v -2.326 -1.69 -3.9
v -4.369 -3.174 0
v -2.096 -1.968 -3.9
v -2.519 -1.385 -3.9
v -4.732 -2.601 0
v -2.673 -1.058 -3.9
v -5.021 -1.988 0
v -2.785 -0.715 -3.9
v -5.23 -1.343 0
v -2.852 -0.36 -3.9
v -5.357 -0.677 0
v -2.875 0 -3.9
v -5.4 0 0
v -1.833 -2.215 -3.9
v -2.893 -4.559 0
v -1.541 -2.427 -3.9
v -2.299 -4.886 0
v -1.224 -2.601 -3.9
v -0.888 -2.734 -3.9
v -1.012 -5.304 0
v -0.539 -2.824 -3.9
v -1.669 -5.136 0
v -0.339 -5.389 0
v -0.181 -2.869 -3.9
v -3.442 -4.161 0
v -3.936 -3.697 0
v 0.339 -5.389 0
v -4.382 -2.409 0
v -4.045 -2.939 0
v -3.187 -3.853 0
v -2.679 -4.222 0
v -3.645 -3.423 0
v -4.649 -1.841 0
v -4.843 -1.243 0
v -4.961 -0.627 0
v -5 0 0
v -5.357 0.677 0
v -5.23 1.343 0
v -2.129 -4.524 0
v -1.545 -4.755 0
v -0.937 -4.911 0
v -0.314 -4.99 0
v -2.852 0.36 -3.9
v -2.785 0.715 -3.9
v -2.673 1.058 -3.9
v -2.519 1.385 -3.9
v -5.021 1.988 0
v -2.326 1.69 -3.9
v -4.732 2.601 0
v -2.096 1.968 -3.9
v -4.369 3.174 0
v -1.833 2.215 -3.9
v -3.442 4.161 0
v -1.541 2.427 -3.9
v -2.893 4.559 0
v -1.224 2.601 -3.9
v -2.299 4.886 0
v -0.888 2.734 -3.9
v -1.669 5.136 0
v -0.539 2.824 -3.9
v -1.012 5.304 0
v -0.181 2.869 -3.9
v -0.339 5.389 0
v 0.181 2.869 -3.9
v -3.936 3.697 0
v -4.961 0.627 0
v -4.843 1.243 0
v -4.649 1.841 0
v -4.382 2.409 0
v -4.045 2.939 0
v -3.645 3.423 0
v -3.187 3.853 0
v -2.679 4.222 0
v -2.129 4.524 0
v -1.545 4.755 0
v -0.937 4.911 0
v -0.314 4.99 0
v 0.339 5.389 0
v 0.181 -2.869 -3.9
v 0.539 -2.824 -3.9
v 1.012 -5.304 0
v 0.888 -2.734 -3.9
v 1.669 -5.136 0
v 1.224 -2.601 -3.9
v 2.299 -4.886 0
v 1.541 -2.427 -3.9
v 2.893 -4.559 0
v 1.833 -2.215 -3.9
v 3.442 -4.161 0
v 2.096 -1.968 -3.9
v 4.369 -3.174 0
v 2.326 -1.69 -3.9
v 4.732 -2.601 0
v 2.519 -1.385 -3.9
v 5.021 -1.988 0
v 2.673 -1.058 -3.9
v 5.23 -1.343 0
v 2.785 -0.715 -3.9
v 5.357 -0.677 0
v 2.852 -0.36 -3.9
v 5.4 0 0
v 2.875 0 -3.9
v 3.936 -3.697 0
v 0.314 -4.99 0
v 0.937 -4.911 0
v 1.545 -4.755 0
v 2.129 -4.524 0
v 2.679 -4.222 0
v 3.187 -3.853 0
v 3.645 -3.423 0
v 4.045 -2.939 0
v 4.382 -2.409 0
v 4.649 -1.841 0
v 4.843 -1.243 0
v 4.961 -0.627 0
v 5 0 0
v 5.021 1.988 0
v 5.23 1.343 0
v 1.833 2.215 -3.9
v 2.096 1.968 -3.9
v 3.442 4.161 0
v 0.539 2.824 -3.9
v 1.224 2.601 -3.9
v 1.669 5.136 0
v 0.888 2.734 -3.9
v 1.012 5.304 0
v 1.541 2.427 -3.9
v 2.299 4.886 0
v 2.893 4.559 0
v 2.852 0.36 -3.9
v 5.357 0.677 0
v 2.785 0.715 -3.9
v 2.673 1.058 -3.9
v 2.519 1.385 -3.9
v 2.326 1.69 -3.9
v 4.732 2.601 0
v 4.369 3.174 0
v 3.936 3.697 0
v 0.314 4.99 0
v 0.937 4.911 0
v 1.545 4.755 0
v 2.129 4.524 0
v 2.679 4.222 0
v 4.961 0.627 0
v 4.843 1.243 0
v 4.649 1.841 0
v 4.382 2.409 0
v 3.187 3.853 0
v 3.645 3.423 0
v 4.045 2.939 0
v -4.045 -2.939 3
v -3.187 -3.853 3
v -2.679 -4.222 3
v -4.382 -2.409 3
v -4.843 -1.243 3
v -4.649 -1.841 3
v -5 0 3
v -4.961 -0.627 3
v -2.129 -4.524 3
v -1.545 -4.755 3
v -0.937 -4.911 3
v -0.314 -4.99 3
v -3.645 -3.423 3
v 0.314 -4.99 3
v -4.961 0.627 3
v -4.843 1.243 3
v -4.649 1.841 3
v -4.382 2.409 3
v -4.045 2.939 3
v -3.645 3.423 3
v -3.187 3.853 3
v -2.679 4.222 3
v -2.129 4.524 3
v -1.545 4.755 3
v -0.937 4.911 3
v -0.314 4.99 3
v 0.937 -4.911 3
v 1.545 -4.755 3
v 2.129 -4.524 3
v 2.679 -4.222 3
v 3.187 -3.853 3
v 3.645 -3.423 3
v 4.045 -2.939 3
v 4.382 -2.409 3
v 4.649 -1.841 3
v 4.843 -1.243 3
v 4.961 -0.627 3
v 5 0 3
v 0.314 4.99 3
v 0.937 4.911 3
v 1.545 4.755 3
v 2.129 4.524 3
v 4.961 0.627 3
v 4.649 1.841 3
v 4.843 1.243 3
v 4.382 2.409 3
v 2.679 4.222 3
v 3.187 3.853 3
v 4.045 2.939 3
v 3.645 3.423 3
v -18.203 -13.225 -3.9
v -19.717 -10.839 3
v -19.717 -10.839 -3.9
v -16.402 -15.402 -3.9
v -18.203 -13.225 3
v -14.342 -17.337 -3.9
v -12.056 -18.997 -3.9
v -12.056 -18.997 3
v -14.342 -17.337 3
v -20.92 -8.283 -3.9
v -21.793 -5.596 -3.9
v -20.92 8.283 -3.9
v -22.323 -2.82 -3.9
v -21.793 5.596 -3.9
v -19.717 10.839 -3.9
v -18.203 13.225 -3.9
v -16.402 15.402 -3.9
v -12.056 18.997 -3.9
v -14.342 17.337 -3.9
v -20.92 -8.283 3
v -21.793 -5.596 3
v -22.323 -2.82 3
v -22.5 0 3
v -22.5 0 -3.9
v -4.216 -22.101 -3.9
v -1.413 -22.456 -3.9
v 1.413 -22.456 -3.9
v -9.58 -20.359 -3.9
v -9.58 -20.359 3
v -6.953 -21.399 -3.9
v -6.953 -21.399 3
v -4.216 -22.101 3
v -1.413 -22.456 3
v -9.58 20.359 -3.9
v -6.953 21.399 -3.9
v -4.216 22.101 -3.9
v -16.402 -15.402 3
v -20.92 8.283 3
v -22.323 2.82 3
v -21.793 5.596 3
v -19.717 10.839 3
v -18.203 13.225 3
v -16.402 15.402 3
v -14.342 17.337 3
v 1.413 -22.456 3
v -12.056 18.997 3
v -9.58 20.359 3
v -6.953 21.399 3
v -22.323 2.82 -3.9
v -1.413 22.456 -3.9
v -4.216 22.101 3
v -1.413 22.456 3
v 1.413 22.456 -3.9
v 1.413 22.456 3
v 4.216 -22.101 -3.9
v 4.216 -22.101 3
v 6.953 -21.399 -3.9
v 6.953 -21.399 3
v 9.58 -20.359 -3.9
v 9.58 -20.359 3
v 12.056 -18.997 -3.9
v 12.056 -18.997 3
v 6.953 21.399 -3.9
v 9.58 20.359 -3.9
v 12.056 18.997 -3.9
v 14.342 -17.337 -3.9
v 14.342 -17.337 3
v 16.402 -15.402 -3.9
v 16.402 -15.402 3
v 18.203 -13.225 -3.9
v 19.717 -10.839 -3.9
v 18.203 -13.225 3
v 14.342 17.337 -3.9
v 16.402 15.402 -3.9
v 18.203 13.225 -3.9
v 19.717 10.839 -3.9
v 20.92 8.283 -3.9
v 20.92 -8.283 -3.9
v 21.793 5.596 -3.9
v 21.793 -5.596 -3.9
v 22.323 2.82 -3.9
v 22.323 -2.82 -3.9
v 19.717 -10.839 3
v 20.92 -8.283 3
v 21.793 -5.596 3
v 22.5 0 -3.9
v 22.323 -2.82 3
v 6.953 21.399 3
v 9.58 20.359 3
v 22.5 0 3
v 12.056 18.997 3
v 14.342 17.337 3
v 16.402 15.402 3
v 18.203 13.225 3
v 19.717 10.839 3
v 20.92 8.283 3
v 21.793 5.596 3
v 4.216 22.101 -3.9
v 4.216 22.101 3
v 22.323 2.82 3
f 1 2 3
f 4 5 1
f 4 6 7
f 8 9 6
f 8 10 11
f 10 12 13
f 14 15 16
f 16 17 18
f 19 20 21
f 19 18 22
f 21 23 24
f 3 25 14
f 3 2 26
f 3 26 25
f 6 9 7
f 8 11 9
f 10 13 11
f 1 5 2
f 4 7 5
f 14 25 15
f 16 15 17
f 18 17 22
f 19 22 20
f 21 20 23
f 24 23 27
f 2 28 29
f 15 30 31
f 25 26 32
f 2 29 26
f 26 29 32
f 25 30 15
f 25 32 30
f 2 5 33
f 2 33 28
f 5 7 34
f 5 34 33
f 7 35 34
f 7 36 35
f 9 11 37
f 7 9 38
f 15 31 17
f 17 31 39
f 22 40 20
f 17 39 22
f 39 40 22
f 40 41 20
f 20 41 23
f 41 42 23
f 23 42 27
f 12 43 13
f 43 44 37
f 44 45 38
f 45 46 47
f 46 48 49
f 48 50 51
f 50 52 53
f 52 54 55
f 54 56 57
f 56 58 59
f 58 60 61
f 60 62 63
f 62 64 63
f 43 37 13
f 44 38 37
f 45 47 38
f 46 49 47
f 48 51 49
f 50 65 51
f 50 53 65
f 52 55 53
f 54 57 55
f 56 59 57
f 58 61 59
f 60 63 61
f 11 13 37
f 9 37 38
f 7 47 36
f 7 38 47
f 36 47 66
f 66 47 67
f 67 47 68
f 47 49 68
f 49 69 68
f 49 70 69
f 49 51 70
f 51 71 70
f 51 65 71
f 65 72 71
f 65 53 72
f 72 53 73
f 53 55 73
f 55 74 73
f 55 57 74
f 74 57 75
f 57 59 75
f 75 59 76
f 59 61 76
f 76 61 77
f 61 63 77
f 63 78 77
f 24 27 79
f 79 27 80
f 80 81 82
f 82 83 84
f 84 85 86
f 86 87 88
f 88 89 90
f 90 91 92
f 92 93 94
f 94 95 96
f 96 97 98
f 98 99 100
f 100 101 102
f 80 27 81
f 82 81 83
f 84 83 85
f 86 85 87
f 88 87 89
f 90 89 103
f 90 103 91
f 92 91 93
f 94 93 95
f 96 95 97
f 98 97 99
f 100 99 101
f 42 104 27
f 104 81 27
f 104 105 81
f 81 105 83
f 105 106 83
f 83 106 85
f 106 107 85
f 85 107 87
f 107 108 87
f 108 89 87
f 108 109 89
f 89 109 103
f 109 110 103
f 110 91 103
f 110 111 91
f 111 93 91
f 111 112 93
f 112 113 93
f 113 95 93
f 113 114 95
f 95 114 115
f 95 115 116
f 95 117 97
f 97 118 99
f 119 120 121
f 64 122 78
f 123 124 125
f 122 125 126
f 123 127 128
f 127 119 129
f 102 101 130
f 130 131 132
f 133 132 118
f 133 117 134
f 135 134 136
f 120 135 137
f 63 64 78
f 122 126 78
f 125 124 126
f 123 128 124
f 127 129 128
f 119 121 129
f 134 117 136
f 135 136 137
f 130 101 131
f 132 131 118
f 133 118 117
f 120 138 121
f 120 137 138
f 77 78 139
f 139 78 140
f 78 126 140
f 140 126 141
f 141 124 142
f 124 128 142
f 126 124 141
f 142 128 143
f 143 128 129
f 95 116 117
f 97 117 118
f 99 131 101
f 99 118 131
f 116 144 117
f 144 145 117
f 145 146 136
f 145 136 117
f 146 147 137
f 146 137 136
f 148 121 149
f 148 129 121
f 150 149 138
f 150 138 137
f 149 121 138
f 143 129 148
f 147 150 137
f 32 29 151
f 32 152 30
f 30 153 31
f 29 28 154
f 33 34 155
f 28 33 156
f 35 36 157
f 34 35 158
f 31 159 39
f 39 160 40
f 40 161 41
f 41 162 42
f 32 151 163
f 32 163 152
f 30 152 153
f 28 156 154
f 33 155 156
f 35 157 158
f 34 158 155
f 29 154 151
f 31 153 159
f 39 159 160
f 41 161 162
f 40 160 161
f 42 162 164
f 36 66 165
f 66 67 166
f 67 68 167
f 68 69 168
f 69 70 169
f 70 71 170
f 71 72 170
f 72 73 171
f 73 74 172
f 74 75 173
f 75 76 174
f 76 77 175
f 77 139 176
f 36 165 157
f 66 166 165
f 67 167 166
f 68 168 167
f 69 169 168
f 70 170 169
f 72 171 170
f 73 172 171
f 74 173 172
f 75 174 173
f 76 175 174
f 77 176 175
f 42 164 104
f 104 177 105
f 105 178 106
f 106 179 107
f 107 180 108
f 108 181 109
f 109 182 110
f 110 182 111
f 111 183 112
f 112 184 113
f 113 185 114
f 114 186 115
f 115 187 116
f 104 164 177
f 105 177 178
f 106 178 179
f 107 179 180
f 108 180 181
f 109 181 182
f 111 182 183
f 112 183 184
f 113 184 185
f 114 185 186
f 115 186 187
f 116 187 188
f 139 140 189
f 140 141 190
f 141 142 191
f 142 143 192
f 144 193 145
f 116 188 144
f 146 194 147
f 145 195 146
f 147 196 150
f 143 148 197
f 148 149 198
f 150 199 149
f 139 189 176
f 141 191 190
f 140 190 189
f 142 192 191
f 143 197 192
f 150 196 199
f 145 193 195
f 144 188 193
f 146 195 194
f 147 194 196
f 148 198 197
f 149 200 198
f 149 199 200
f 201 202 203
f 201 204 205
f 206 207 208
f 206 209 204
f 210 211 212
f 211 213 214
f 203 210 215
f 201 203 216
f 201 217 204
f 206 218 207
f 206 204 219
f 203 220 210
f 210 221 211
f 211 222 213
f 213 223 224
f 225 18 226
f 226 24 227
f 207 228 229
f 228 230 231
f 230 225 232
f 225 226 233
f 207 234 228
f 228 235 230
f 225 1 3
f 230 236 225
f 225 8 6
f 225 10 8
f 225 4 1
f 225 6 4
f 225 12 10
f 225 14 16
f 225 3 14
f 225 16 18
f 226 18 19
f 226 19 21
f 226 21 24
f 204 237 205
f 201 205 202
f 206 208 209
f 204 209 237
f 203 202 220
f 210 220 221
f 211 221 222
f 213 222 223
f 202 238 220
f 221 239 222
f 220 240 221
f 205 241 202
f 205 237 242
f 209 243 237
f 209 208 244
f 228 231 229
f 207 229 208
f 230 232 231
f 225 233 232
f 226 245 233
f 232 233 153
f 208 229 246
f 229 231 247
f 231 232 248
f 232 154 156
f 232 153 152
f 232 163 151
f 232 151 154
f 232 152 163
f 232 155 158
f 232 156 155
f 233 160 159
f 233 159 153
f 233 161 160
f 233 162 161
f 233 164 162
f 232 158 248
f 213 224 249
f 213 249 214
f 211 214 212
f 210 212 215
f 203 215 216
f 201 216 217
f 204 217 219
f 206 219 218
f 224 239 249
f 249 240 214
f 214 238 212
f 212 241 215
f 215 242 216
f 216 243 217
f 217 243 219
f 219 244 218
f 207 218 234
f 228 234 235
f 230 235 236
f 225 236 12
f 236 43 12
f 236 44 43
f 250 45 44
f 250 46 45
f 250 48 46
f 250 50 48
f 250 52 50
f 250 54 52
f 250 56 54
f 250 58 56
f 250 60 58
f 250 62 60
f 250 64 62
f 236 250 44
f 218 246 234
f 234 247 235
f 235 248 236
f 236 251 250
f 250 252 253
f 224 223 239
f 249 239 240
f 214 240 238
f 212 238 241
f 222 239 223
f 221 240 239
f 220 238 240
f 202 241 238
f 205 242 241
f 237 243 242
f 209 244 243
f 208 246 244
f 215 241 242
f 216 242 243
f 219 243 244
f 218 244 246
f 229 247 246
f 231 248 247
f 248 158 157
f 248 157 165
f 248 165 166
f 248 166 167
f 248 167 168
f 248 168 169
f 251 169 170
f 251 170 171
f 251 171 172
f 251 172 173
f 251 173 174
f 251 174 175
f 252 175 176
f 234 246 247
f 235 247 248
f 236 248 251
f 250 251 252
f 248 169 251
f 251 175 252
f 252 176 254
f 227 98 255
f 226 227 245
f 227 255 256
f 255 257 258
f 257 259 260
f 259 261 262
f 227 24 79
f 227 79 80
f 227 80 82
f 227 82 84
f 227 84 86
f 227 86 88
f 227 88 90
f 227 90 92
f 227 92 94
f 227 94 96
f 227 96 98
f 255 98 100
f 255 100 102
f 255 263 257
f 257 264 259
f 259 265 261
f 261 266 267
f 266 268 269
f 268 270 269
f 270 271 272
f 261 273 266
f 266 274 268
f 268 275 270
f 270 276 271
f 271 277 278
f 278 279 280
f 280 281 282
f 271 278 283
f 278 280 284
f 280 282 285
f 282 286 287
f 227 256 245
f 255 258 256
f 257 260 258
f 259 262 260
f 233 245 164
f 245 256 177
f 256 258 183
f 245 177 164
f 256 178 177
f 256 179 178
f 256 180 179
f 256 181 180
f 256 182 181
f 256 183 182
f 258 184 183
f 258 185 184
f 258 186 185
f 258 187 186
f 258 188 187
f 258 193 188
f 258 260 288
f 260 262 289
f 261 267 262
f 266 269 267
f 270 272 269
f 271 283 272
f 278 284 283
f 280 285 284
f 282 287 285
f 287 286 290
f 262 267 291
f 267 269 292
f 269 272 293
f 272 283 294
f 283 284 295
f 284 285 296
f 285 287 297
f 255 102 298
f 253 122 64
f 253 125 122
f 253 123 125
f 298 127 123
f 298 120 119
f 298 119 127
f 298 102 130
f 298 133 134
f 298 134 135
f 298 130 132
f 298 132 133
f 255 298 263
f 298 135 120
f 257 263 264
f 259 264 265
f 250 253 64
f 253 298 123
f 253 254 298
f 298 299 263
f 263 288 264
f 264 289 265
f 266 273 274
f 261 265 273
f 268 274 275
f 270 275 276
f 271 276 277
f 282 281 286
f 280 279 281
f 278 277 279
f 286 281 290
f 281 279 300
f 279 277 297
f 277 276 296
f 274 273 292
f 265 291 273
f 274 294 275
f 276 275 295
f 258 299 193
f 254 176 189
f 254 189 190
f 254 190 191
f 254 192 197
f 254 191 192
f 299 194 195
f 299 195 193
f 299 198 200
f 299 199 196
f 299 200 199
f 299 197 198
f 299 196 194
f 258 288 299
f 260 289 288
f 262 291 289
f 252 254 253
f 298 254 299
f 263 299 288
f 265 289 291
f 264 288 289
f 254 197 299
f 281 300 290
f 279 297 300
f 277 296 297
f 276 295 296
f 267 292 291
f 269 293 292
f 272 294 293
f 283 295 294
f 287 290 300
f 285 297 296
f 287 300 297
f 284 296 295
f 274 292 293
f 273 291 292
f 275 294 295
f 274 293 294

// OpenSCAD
$fn = 50;


difference() {
	union() {
		translate(v = [0, 0, -3.9000000000]) {
			cylinder(h = 6.9000000000, r = 22.5000000000);
		}
	}
	union() {
		translate(v = [0, 0, 0]) {
			rotate(a = [0, 0, 0]) {
				difference() {
					union() {
						translate(v = [0, 0, -6.9000000000]) {
							cylinder(h = 6.9000000000, r = 2.6000000000);
						}
						translate(v = [0, 0, -3.9000000000]) {
							cylinder(h = 3.9000000000, r1 = 2.8750000000, r2 = 5.4000000000);
						}
						translate(v = [0, 0, -6.9000000000]) {
							cylinder(h = 6.9000000000, r = 2.8750000000);
						}
						translate(v = [0, 0, -6.9000000000]) {
							cylinder(h = 6.9000000000, r = 2.6000000000);
						}
					}
					union();
				}
			}
		}
		#cylinder(h = 3, r = 5.0000000000);
	}
}
